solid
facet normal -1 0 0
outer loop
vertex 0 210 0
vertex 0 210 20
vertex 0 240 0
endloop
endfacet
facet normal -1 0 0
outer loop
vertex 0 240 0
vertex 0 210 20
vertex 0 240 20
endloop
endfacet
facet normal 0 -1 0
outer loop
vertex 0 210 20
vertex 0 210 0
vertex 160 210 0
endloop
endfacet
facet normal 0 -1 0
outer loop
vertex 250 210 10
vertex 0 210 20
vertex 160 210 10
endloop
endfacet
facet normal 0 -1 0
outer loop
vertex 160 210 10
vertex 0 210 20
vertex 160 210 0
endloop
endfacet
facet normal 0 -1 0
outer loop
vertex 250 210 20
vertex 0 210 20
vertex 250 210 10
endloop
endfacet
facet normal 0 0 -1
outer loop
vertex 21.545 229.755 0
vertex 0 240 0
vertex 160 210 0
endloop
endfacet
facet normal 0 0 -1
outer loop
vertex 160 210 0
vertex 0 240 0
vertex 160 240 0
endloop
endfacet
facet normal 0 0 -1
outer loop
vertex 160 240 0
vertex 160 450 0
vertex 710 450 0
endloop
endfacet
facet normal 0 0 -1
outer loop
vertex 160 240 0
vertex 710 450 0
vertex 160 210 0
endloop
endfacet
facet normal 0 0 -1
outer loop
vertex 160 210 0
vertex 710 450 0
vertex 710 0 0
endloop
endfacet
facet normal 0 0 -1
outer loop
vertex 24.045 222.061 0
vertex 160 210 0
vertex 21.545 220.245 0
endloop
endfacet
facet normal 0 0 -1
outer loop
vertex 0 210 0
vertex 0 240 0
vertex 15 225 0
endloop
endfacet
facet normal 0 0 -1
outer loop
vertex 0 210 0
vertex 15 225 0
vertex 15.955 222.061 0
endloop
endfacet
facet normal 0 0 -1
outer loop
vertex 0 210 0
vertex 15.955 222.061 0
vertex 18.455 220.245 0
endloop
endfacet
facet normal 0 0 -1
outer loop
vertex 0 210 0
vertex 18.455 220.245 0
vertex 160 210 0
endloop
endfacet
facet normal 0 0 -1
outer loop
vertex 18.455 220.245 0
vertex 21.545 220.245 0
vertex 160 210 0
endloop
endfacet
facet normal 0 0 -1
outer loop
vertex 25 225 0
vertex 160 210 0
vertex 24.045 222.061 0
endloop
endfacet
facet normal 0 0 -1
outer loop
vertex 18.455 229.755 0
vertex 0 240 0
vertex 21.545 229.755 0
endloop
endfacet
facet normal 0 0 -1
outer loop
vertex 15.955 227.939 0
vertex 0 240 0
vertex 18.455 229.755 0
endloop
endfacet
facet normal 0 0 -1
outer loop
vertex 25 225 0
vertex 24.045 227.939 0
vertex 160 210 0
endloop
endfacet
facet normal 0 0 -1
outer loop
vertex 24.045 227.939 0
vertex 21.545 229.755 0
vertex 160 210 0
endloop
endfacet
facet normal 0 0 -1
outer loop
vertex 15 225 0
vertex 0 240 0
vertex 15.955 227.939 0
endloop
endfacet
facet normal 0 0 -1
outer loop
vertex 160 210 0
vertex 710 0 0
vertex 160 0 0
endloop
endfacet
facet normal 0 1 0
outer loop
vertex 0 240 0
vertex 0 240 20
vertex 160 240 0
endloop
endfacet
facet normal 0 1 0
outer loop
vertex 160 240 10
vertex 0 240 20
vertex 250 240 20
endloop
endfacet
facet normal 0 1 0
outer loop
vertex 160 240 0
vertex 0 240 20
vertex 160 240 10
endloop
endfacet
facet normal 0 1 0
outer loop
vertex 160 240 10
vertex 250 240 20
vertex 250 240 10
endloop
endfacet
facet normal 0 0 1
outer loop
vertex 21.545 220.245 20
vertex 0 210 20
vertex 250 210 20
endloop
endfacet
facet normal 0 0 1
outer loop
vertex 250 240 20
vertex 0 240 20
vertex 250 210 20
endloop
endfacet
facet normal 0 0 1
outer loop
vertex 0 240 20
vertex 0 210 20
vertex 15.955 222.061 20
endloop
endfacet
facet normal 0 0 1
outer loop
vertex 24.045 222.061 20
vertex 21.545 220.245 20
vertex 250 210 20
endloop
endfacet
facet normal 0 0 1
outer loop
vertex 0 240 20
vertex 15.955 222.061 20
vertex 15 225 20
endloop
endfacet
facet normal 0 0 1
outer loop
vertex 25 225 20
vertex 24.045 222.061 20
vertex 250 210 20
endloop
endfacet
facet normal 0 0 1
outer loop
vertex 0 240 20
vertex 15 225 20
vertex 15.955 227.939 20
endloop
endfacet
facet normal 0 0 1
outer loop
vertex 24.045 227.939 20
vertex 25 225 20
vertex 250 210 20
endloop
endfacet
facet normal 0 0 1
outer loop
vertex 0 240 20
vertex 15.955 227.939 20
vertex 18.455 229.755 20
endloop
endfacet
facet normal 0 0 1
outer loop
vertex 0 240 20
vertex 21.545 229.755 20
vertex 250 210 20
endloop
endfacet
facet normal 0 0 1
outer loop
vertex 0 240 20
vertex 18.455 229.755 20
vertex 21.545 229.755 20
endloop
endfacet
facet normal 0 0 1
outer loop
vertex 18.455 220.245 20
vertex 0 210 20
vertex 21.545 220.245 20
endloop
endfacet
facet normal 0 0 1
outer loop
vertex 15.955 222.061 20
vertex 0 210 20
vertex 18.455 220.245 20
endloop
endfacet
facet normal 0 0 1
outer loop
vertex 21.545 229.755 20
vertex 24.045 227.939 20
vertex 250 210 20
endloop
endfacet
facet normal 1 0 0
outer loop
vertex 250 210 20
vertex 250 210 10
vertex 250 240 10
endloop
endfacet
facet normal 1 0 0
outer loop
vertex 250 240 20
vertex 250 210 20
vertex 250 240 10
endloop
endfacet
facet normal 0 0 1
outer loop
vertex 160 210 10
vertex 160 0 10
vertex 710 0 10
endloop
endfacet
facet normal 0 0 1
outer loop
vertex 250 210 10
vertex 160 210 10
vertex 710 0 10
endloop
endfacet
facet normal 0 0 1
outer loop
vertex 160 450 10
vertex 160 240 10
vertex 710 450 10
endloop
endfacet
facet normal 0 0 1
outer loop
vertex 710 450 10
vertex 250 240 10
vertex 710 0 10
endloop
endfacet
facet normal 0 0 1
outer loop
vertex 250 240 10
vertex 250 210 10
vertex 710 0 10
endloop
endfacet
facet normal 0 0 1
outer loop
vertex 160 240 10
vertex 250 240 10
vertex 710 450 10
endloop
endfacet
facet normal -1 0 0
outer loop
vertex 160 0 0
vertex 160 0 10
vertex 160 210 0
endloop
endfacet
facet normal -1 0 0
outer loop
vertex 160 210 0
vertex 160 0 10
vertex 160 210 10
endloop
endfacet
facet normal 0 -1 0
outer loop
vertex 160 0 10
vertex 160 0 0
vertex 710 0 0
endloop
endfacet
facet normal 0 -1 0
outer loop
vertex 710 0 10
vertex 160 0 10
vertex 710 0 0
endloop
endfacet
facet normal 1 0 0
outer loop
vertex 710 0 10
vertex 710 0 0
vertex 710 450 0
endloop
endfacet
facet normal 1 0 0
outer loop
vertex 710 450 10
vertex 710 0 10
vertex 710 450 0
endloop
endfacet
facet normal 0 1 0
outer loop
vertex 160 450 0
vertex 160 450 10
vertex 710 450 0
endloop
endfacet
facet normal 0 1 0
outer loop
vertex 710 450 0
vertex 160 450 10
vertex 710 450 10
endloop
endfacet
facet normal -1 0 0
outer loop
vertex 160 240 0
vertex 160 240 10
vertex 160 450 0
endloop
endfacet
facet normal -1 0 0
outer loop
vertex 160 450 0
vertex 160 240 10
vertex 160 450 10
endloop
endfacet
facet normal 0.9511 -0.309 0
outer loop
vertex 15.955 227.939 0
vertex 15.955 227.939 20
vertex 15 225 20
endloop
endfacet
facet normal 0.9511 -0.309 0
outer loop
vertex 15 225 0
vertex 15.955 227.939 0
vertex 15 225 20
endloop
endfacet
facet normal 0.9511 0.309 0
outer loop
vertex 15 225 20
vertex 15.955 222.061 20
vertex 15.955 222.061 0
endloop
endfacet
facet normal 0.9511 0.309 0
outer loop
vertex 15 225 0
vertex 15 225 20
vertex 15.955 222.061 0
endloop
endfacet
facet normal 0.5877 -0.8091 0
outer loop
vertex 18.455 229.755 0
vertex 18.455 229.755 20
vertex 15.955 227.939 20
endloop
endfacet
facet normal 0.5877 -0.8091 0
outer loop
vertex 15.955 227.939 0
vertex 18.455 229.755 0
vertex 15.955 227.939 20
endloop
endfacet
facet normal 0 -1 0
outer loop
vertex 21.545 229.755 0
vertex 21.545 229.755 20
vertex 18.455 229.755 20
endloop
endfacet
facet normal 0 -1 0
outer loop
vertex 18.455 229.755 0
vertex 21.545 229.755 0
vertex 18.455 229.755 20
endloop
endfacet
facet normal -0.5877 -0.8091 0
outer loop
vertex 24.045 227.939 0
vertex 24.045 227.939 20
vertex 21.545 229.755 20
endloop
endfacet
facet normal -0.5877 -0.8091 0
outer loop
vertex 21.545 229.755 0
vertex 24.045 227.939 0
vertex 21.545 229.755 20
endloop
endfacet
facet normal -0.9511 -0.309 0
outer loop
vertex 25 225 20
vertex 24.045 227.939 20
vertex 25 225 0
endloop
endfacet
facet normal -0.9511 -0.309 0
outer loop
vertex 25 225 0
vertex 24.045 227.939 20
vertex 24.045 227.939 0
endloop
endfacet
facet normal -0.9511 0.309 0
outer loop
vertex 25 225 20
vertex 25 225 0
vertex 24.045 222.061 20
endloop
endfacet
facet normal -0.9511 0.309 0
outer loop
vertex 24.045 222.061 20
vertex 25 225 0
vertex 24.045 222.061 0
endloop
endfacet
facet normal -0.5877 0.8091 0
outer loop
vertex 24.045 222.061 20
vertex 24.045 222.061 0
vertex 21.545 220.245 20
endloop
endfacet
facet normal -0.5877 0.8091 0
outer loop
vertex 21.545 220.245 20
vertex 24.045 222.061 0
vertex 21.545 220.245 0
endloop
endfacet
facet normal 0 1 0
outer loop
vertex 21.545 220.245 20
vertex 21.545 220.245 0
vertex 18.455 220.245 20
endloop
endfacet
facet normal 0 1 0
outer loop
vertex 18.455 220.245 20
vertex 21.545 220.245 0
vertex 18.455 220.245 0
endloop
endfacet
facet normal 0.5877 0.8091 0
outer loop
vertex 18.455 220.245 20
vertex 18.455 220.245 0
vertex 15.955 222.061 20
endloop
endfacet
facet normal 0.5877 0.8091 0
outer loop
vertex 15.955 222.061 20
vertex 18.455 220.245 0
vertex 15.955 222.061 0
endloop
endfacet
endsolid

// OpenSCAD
// CONFIGURATION

paddle_x_size = 550;
paddle_y_size = 450;
paddle_z_size = 10;

handle_x_size = 250;
handle_y_size = 30;
handle_z_size = 20;

handle_paddle_overlap = 3 * handle_y_size;

handle_hole_radius = 5;
handle_hole_x_position = 20;

facets = 10; // Granularity of circular objects

// CONFIGURATION END

// CALCULATIONS

handle_x_position = 0;
handle_y_position = (paddle_y_size - handle_y_size) / 2;
handle_z_position = 0;

paddle_x_position = handle_x_size - handle_paddle_overlap;
paddle_y_position = 0;
paddle_z_position = 0;

handle_hole_height = handle_z_size * 2;
handle_hole_y_position = handle_y_position + handle_y_size / 2;
handle_hole_z_position = -handle_z_size / 2;

peel_x_size = paddle_x_position + paddle_x_size;
peel_y_size = paddle_y_size;
peel_z_size = handle_z_size;

// CALCULATIONS END

// MODULES
module paddle() {
    translate([paddle_x_position, paddle_y_position, paddle_z_position]) {
        cube([paddle_x_size, paddle_y_size, paddle_z_size]);
    }
}

module handle() {
    translate([handle_x_position, handle_y_position, handle_z_position]) {
        cube([handle_x_size, handle_y_size, handle_z_size]);
    }
}

module handle_hole() {
    translate([handle_hole_x_position, handle_hole_y_position, handle_hole_z_position]) {
        cylinder(h = handle_hole_height, r = handle_hole_radius, $fn = facets);
    }
}

module peel() {
    difference() {
        union() {
            paddle();
            handle();
        }
        handle_hole();
    }
}

// MODULE END

// DOCUMENTATION

echo (str(
    "Total dimensions: ",
    "length = ", peel_x_size, ", ",
    "width = ", peel_y_size, ", ",
    "thickness = ", peel_z_size));

echo (str(
    "Other configuration: ",
    "facets = ", facets));

// DOCUMENTATION END

peel();
